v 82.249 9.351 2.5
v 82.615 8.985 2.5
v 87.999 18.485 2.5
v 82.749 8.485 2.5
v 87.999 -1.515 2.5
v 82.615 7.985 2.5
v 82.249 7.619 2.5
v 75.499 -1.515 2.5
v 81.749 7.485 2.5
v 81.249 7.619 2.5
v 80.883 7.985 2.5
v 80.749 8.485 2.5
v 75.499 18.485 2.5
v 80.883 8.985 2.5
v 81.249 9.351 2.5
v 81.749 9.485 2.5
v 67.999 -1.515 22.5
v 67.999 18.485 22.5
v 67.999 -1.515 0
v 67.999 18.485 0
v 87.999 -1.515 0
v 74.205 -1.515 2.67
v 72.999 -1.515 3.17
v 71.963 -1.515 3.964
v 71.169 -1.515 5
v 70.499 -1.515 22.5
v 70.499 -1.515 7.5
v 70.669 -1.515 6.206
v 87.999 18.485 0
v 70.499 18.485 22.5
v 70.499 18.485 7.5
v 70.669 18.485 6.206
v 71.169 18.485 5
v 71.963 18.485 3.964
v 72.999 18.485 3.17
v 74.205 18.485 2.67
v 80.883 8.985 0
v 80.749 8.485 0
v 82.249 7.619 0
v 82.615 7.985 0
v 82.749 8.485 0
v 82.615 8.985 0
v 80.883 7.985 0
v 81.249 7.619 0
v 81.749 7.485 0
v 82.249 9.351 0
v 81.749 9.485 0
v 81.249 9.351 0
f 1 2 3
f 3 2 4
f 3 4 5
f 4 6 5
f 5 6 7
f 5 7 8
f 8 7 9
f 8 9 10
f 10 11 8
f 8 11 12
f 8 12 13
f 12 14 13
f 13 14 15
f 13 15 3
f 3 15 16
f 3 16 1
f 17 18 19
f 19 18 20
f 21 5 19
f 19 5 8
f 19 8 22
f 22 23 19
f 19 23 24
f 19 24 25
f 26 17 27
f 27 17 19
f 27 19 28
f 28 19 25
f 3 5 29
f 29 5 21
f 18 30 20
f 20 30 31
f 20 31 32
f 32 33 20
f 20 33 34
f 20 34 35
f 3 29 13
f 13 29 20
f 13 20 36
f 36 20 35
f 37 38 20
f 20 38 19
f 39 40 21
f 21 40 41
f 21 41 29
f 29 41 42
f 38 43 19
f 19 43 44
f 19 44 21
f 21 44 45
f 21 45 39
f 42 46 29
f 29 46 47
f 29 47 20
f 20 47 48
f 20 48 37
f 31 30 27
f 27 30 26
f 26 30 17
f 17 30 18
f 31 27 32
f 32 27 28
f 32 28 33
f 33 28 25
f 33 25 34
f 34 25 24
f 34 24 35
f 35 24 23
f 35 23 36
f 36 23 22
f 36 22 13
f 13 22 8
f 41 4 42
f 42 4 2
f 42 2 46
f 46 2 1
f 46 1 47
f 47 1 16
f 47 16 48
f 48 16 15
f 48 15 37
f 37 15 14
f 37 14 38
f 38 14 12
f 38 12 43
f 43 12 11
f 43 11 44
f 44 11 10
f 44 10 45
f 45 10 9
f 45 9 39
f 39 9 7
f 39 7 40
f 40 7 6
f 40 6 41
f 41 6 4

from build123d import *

# Parameters (mm, degrees)
SKETCH2_W           = 20
SKETCH2_H           = 20
BOSS_EXTRUDE1_DEPTH = 2.5
SKETCH3_W           = 2.5
SKETCH3_H           = 20
BOSS_EXTRUDE2_DEPTH = 22.5
FILLET1_R           = 5
SKETCH4_R           = 1
CUT_EXTRUDE1_DEPTH  = 22.5


with BuildPart() as part:
    # Sketch2 → Boss-Extrude1 (new body)
    with BuildSketch(Plane.XY):
        with Locations((77.998956535, 8.484810347)):
            Rectangle(SKETCH2_W, SKETCH2_H)
    extrude(amount=BOSS_EXTRUDE1_DEPTH)

    # Sketch3 → Boss-Extrude2 (add)
    with BuildSketch(Plane.XY):
        with Locations((69.248956535, 8.484810347)):
            Rectangle(SKETCH3_W, SKETCH3_H)
    extrude(amount=BOSS_EXTRUDE2_DEPTH)

    # Fillet1
    fillet1_edges = [part.edges().sort_by_distance(p)[0] for p in [
        (70.498956535, 8.484810347, 2.5),
    ]]
    fillet(fillet1_edges, radius=FILLET1_R)

    # Sketch4 → Cut-Extrude1 (cut)
    with BuildSketch(Plane.XY.offset(2.5)):
        with Locations((81.748956535, 8.484810347)):
            Circle(SKETCH4_R)
    extrude(amount=-CUT_EXTRUDE1_DEPTH, mode=Mode.SUBTRACT)


solid = part.part
